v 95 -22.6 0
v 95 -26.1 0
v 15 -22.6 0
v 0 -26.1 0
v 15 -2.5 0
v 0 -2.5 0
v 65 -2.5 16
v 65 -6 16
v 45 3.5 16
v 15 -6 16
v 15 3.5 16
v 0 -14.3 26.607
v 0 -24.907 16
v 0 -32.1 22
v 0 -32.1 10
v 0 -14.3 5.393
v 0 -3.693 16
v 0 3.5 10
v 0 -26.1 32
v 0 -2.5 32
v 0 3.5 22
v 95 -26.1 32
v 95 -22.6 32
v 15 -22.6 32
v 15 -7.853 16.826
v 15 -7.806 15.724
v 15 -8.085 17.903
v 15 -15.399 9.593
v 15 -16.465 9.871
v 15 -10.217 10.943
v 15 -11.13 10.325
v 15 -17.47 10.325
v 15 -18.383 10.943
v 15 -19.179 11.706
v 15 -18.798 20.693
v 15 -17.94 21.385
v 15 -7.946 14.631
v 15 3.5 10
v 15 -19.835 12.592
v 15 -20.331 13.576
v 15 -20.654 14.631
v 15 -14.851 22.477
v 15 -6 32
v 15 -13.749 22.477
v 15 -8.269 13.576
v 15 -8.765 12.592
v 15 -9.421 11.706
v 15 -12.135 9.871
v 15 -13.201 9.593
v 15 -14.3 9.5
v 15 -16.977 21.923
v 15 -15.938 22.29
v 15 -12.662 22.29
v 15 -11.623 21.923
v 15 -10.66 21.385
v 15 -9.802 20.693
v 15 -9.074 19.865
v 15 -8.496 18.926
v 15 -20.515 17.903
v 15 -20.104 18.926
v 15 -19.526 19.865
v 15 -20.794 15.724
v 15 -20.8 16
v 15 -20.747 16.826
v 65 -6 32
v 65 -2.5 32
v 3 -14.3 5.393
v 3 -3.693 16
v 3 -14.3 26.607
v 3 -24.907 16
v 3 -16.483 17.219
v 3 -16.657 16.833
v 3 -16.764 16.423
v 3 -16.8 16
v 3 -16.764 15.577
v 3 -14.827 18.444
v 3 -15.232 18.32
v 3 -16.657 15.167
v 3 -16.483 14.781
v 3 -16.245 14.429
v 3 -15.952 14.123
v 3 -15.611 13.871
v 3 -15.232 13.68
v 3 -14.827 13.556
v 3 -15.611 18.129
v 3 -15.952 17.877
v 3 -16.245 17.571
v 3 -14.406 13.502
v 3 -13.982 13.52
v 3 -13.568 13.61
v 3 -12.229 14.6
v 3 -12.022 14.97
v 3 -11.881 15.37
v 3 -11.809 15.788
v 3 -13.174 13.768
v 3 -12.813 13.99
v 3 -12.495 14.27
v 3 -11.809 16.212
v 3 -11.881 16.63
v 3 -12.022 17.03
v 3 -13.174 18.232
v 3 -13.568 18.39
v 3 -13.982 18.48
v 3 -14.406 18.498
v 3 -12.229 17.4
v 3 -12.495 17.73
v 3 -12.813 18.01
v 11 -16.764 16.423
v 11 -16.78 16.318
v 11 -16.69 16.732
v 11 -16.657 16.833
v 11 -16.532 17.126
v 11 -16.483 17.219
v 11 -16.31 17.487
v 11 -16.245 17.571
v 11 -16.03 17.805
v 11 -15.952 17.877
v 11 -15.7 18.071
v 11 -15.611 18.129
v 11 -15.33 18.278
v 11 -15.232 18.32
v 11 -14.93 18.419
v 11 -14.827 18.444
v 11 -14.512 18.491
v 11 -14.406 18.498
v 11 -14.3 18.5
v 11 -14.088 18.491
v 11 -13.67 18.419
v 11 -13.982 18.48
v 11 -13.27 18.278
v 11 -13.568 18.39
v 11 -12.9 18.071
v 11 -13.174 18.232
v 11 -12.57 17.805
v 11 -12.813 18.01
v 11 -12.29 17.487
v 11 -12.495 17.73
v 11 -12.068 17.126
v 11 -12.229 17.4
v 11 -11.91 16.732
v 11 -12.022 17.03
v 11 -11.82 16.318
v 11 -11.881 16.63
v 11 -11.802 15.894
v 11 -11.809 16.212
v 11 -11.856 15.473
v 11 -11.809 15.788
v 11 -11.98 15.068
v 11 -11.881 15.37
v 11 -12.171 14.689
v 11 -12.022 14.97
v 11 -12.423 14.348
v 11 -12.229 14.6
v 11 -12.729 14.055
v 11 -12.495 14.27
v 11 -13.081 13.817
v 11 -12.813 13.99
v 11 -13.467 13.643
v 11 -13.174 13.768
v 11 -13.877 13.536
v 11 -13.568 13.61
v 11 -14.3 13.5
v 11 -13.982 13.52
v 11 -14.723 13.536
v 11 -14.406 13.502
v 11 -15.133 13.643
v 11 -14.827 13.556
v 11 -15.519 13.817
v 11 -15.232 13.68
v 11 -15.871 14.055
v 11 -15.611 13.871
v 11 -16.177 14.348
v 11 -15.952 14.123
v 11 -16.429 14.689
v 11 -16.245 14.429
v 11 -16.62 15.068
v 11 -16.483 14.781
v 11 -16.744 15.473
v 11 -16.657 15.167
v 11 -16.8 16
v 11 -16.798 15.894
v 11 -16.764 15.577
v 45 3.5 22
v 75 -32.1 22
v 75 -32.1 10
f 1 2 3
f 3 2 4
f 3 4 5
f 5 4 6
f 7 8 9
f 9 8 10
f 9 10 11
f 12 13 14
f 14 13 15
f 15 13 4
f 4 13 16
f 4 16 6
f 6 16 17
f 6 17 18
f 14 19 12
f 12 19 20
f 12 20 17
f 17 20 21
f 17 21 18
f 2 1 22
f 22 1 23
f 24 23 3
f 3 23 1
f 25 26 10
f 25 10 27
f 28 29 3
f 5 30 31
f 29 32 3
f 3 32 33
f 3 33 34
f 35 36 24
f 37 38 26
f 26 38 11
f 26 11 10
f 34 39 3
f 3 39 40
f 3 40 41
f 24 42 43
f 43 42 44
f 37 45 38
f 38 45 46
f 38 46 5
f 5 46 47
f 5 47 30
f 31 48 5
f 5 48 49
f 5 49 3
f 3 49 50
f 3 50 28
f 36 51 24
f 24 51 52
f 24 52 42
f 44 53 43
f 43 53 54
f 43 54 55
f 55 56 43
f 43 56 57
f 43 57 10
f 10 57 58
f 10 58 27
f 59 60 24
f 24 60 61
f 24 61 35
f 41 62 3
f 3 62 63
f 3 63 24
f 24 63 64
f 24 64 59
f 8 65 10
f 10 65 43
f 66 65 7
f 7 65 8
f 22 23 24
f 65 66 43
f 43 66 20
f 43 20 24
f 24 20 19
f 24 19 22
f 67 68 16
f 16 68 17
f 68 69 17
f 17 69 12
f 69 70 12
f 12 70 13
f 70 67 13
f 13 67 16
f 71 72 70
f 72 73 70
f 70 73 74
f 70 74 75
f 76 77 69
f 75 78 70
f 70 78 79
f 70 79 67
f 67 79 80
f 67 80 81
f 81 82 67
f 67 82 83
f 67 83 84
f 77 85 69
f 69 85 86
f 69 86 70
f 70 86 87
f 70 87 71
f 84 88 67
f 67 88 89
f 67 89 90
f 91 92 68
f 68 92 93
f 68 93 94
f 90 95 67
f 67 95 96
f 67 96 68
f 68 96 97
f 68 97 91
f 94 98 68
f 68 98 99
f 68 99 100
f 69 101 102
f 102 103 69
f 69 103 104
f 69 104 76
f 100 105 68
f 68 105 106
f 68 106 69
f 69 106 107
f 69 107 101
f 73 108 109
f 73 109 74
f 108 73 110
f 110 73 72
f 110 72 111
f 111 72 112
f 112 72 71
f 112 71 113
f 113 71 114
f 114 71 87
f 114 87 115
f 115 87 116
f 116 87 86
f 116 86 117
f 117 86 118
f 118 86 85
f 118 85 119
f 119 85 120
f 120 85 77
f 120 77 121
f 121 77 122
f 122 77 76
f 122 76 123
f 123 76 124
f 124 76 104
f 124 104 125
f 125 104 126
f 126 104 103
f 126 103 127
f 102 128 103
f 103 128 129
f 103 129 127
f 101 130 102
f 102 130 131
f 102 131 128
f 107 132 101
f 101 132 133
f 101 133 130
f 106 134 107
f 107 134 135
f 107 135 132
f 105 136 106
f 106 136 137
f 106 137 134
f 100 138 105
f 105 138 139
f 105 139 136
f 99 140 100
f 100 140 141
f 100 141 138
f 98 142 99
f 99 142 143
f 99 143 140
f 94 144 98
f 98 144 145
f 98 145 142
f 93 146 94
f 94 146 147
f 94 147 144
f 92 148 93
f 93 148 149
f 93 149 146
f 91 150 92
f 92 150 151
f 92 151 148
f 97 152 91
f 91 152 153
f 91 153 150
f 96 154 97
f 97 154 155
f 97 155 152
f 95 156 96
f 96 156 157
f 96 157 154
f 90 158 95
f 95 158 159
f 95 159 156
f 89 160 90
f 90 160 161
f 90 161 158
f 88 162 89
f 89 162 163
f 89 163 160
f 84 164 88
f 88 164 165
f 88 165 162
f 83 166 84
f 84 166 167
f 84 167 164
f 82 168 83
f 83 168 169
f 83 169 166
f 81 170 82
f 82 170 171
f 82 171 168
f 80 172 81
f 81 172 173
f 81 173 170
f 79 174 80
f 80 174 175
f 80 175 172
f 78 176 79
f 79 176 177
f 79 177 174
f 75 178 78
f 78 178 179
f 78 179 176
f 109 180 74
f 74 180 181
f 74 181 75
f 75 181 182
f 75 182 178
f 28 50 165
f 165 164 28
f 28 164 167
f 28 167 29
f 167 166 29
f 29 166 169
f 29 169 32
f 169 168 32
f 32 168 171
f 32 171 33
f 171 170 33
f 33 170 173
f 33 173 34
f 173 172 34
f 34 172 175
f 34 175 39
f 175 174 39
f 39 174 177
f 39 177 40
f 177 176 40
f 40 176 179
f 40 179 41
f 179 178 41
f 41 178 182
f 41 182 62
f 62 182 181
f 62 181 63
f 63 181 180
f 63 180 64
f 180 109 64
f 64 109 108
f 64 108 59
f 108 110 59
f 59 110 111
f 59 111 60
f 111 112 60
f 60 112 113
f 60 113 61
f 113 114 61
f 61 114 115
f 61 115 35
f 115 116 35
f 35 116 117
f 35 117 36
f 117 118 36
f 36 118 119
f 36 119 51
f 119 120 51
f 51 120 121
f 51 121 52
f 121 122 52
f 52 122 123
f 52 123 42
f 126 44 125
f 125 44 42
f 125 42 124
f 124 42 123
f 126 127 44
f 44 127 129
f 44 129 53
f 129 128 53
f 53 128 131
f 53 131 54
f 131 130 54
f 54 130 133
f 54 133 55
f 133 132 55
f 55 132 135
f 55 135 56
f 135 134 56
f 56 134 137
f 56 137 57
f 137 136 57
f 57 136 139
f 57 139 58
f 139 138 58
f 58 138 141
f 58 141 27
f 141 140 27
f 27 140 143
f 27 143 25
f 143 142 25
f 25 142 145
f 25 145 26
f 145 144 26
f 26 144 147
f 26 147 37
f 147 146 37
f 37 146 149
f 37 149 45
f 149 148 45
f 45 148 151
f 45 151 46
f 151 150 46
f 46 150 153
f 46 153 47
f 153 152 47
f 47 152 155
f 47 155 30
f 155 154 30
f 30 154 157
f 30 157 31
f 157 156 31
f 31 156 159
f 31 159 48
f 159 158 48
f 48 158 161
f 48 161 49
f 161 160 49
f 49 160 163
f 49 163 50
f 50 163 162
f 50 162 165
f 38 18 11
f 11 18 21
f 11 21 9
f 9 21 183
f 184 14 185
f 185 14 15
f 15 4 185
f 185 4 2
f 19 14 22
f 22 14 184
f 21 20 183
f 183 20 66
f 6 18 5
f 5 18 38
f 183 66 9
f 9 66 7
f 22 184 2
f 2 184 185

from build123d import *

# Parameters (mm, degrees)
EXTRUDE_1_DEPTH     = 32
CUT_EXTRUDE_2_DEPTH = 3
SKETCH_4_R          = 2.5
CUT_EXTRUDE_3_DEPTH = 15
CHAMFER_2_SIZE      = 4
SKETCH_6_W          = 6
SKETCH_6_H          = 3.5
EXTRUDE_2_DEPTH     = 50
SKETCH_7_W          = 16
SKETCH_7_H          = 6
CUT_EXTRUDE_5_DEPTH = 50
SKETCH_8_W          = 6
SKETCH_8_H          = 3.5
EXTRUDE_3_DEPTH     = 15
SKETCH_9_W          = 15
SKETCH_9_H          = 3.5
EXTRUDE_4_DEPTH     = 6
SKETCH_10_W         = 6
SKETCH_10_H         = 3.5
EXTRUDE_5_DEPTH     = 95
SKETCH_11_W         = 65
SKETCH_11_H         = 10
SKETCH_11_W_2       = 15
CUT_EXTRUDE_6_DEPTH = 2.5
SKETCH_12_W         = 95
SKETCH_12_H         = 10
CUT_EXTRUDE_7_DEPTH = 2.5
EXTRUDE_6_DEPTH     = 95
EXTRUDE_7_DEPTH     = 65
EXTRUDE_8_DEPTH     = 15
CUT_EXTRUDE_START   = -32
CUT_EXTRUDE_9_DEPTH = 32


with BuildPart() as part:
    # Эскиз2 → Бобышка-Вытянуть1 (new body)
    with BuildSketch(Plane.XY):
        Polygon((0, 0), (65, 0), (65, -6), (15, -6), (15, -22.6), (95, -22.6), (95, -28.6), (0, -28.6), align=None)
    extrude(amount=EXTRUDE_1_DEPTH)

    # Эскиз3 → Вырез-Вытянуть2 (cut)
    with BuildSketch(Plane.ZY):
        Polygon((5.393398282, -14.3), (16, -24.906601718), (26.606601718, -14.3), (16, -3.693398282), align=None)
    extrude(amount=-CUT_EXTRUDE_2_DEPTH, mode=Mode.SUBTRACT)

    # Эскиз4 → Вырез-Вытянуть3 (cut)
    with BuildSketch(Plane.ZY):
        with Locations(Location((16, -14.3, 0), (0, 0, 270))):
            Circle(SKETCH_4_R)
    extrude(amount=-CUT_EXTRUDE_3_DEPTH, mode=Mode.SUBTRACT)

    # Фаска2
    chamfer_2_edges = [part.edges().sort_by_distance(p)[0] for p in [
        (15, -11.8, 16),
    ]]
    chamfer(chamfer_2_edges, length=CHAMFER_2_SIZE)

    # Эскиз6 → Бобышка-Вытянуть2 (add)
    with BuildSketch(Plane(origin=(65, 0, 0), x_dir=(0, 0, -1), z_dir=(1, 0, 0))):
        with Locations((-19, 1.75)):
            Rectangle(SKETCH_6_W, SKETCH_6_H)
    extrude(amount=-EXTRUDE_2_DEPTH)

    # Эскиз7 → Вырез-Вытянуть5 (cut)
    with BuildSketch(Plane(origin=(65, 0, 0), x_dir=(0, 0, -1), z_dir=(1, 0, 0))):
        with Locations((-8, -3)):
            Rectangle(SKETCH_7_W, SKETCH_7_H)
    extrude(amount=-CUT_EXTRUDE_5_DEPTH, mode=Mode.SUBTRACT)

    # Эскиз8 → Бобышка-Вытянуть3 (add)
    with BuildSketch(Plane.ZY.offset(-15)):
        with Locations((19, 1.75)):
            Rectangle(SKETCH_8_W, SKETCH_8_H)
    extrude(amount=EXTRUDE_3_DEPTH)

    # Эскиз9 → Бобышка-Вытянуть4 (add)
    with BuildSketch(Plane(origin=(0, 0, 16), x_dir=(-1, 0, 0), z_dir=(0, 0, -1))):
        with Locations((-7.5, 1.75)):
            Rectangle(SKETCH_9_W, SKETCH_9_H)
    extrude(amount=EXTRUDE_4_DEPTH)

    # Эскиз10 → Бобышка-Вытянуть5 (add)
    with BuildSketch(Plane.ZY):
        with Locations((13, -30.35)):
            Rectangle(SKETCH_10_W, SKETCH_10_H)
        with Locations((19, -30.35)):
            Rectangle(SKETCH_10_W, SKETCH_10_H)
    extrude(amount=-EXTRUDE_5_DEPTH)

    # Эскиз11 → Вырез-Вытянуть6 (cut)
    with BuildSketch(Plane(origin=(0, 0, 0), x_dir=(1, 0, 0), z_dir=(0, 1, 0))):
        with Locations((32.5, -27)):
            Rectangle(SKETCH_11_W, SKETCH_11_H)
        with Locations((7.5, -5)):
            Rectangle(SKETCH_11_W_2, SKETCH_11_H)
    extrude(amount=-CUT_EXTRUDE_6_DEPTH, mode=Mode.SUBTRACT)

    # Эскиз12 → Вырез-Вытянуть7 (cut)
    with BuildSketch(Plane.XZ.offset(28.6)):
        with Locations((47.5, 5)):
            Rectangle(SKETCH_12_W, SKETCH_12_H)
        with Locations((47.5, 27)):
            Rectangle(SKETCH_12_W, SKETCH_12_H)
    extrude(amount=-CUT_EXTRUDE_7_DEPTH, mode=Mode.SUBTRACT)

    # Эскиз13 → Бобышка-Вытянуть6 (add)
    with BuildSketch(Plane.ZY):
        Polygon((0, -26.1), (10, -32.1), (10, -26.1), align=None)
        Polygon((22, -26.1), (22, -32.1), (32, -26.1), align=None)
    extrude(amount=-EXTRUDE_6_DEPTH)

    # Эскиз14 → Бобышка-Вытянуть7 (add)
    with BuildSketch(Plane.ZY):
        Polygon((22, 3.5), (32, -2.5), (22, -2.5), align=None)
    extrude(amount=-EXTRUDE_7_DEPTH)

    # Эскиз15 → Бобышка-Вытянуть8 (add)
    with BuildSketch(Plane.ZY):
        Polygon((10, 3.5), (10, -2.5), (0, -2.5), align=None)
    extrude(amount=-EXTRUDE_8_DEPTH)

    # Эскиз16 → Вырез-Вытянуть9 (cut)
    with BuildSketch(Plane.XY.offset(32).offset(CUT_EXTRUDE_START)):
        Polygon((65, -2.5), (65, 3.5), (45, 3.5), align=None)
        Polygon((95, -26.1), (95, -32.1), (75, -32.1), align=None)
    extrude(amount=CUT_EXTRUDE_9_DEPTH, mode=Mode.SUBTRACT)


solid = part.part
